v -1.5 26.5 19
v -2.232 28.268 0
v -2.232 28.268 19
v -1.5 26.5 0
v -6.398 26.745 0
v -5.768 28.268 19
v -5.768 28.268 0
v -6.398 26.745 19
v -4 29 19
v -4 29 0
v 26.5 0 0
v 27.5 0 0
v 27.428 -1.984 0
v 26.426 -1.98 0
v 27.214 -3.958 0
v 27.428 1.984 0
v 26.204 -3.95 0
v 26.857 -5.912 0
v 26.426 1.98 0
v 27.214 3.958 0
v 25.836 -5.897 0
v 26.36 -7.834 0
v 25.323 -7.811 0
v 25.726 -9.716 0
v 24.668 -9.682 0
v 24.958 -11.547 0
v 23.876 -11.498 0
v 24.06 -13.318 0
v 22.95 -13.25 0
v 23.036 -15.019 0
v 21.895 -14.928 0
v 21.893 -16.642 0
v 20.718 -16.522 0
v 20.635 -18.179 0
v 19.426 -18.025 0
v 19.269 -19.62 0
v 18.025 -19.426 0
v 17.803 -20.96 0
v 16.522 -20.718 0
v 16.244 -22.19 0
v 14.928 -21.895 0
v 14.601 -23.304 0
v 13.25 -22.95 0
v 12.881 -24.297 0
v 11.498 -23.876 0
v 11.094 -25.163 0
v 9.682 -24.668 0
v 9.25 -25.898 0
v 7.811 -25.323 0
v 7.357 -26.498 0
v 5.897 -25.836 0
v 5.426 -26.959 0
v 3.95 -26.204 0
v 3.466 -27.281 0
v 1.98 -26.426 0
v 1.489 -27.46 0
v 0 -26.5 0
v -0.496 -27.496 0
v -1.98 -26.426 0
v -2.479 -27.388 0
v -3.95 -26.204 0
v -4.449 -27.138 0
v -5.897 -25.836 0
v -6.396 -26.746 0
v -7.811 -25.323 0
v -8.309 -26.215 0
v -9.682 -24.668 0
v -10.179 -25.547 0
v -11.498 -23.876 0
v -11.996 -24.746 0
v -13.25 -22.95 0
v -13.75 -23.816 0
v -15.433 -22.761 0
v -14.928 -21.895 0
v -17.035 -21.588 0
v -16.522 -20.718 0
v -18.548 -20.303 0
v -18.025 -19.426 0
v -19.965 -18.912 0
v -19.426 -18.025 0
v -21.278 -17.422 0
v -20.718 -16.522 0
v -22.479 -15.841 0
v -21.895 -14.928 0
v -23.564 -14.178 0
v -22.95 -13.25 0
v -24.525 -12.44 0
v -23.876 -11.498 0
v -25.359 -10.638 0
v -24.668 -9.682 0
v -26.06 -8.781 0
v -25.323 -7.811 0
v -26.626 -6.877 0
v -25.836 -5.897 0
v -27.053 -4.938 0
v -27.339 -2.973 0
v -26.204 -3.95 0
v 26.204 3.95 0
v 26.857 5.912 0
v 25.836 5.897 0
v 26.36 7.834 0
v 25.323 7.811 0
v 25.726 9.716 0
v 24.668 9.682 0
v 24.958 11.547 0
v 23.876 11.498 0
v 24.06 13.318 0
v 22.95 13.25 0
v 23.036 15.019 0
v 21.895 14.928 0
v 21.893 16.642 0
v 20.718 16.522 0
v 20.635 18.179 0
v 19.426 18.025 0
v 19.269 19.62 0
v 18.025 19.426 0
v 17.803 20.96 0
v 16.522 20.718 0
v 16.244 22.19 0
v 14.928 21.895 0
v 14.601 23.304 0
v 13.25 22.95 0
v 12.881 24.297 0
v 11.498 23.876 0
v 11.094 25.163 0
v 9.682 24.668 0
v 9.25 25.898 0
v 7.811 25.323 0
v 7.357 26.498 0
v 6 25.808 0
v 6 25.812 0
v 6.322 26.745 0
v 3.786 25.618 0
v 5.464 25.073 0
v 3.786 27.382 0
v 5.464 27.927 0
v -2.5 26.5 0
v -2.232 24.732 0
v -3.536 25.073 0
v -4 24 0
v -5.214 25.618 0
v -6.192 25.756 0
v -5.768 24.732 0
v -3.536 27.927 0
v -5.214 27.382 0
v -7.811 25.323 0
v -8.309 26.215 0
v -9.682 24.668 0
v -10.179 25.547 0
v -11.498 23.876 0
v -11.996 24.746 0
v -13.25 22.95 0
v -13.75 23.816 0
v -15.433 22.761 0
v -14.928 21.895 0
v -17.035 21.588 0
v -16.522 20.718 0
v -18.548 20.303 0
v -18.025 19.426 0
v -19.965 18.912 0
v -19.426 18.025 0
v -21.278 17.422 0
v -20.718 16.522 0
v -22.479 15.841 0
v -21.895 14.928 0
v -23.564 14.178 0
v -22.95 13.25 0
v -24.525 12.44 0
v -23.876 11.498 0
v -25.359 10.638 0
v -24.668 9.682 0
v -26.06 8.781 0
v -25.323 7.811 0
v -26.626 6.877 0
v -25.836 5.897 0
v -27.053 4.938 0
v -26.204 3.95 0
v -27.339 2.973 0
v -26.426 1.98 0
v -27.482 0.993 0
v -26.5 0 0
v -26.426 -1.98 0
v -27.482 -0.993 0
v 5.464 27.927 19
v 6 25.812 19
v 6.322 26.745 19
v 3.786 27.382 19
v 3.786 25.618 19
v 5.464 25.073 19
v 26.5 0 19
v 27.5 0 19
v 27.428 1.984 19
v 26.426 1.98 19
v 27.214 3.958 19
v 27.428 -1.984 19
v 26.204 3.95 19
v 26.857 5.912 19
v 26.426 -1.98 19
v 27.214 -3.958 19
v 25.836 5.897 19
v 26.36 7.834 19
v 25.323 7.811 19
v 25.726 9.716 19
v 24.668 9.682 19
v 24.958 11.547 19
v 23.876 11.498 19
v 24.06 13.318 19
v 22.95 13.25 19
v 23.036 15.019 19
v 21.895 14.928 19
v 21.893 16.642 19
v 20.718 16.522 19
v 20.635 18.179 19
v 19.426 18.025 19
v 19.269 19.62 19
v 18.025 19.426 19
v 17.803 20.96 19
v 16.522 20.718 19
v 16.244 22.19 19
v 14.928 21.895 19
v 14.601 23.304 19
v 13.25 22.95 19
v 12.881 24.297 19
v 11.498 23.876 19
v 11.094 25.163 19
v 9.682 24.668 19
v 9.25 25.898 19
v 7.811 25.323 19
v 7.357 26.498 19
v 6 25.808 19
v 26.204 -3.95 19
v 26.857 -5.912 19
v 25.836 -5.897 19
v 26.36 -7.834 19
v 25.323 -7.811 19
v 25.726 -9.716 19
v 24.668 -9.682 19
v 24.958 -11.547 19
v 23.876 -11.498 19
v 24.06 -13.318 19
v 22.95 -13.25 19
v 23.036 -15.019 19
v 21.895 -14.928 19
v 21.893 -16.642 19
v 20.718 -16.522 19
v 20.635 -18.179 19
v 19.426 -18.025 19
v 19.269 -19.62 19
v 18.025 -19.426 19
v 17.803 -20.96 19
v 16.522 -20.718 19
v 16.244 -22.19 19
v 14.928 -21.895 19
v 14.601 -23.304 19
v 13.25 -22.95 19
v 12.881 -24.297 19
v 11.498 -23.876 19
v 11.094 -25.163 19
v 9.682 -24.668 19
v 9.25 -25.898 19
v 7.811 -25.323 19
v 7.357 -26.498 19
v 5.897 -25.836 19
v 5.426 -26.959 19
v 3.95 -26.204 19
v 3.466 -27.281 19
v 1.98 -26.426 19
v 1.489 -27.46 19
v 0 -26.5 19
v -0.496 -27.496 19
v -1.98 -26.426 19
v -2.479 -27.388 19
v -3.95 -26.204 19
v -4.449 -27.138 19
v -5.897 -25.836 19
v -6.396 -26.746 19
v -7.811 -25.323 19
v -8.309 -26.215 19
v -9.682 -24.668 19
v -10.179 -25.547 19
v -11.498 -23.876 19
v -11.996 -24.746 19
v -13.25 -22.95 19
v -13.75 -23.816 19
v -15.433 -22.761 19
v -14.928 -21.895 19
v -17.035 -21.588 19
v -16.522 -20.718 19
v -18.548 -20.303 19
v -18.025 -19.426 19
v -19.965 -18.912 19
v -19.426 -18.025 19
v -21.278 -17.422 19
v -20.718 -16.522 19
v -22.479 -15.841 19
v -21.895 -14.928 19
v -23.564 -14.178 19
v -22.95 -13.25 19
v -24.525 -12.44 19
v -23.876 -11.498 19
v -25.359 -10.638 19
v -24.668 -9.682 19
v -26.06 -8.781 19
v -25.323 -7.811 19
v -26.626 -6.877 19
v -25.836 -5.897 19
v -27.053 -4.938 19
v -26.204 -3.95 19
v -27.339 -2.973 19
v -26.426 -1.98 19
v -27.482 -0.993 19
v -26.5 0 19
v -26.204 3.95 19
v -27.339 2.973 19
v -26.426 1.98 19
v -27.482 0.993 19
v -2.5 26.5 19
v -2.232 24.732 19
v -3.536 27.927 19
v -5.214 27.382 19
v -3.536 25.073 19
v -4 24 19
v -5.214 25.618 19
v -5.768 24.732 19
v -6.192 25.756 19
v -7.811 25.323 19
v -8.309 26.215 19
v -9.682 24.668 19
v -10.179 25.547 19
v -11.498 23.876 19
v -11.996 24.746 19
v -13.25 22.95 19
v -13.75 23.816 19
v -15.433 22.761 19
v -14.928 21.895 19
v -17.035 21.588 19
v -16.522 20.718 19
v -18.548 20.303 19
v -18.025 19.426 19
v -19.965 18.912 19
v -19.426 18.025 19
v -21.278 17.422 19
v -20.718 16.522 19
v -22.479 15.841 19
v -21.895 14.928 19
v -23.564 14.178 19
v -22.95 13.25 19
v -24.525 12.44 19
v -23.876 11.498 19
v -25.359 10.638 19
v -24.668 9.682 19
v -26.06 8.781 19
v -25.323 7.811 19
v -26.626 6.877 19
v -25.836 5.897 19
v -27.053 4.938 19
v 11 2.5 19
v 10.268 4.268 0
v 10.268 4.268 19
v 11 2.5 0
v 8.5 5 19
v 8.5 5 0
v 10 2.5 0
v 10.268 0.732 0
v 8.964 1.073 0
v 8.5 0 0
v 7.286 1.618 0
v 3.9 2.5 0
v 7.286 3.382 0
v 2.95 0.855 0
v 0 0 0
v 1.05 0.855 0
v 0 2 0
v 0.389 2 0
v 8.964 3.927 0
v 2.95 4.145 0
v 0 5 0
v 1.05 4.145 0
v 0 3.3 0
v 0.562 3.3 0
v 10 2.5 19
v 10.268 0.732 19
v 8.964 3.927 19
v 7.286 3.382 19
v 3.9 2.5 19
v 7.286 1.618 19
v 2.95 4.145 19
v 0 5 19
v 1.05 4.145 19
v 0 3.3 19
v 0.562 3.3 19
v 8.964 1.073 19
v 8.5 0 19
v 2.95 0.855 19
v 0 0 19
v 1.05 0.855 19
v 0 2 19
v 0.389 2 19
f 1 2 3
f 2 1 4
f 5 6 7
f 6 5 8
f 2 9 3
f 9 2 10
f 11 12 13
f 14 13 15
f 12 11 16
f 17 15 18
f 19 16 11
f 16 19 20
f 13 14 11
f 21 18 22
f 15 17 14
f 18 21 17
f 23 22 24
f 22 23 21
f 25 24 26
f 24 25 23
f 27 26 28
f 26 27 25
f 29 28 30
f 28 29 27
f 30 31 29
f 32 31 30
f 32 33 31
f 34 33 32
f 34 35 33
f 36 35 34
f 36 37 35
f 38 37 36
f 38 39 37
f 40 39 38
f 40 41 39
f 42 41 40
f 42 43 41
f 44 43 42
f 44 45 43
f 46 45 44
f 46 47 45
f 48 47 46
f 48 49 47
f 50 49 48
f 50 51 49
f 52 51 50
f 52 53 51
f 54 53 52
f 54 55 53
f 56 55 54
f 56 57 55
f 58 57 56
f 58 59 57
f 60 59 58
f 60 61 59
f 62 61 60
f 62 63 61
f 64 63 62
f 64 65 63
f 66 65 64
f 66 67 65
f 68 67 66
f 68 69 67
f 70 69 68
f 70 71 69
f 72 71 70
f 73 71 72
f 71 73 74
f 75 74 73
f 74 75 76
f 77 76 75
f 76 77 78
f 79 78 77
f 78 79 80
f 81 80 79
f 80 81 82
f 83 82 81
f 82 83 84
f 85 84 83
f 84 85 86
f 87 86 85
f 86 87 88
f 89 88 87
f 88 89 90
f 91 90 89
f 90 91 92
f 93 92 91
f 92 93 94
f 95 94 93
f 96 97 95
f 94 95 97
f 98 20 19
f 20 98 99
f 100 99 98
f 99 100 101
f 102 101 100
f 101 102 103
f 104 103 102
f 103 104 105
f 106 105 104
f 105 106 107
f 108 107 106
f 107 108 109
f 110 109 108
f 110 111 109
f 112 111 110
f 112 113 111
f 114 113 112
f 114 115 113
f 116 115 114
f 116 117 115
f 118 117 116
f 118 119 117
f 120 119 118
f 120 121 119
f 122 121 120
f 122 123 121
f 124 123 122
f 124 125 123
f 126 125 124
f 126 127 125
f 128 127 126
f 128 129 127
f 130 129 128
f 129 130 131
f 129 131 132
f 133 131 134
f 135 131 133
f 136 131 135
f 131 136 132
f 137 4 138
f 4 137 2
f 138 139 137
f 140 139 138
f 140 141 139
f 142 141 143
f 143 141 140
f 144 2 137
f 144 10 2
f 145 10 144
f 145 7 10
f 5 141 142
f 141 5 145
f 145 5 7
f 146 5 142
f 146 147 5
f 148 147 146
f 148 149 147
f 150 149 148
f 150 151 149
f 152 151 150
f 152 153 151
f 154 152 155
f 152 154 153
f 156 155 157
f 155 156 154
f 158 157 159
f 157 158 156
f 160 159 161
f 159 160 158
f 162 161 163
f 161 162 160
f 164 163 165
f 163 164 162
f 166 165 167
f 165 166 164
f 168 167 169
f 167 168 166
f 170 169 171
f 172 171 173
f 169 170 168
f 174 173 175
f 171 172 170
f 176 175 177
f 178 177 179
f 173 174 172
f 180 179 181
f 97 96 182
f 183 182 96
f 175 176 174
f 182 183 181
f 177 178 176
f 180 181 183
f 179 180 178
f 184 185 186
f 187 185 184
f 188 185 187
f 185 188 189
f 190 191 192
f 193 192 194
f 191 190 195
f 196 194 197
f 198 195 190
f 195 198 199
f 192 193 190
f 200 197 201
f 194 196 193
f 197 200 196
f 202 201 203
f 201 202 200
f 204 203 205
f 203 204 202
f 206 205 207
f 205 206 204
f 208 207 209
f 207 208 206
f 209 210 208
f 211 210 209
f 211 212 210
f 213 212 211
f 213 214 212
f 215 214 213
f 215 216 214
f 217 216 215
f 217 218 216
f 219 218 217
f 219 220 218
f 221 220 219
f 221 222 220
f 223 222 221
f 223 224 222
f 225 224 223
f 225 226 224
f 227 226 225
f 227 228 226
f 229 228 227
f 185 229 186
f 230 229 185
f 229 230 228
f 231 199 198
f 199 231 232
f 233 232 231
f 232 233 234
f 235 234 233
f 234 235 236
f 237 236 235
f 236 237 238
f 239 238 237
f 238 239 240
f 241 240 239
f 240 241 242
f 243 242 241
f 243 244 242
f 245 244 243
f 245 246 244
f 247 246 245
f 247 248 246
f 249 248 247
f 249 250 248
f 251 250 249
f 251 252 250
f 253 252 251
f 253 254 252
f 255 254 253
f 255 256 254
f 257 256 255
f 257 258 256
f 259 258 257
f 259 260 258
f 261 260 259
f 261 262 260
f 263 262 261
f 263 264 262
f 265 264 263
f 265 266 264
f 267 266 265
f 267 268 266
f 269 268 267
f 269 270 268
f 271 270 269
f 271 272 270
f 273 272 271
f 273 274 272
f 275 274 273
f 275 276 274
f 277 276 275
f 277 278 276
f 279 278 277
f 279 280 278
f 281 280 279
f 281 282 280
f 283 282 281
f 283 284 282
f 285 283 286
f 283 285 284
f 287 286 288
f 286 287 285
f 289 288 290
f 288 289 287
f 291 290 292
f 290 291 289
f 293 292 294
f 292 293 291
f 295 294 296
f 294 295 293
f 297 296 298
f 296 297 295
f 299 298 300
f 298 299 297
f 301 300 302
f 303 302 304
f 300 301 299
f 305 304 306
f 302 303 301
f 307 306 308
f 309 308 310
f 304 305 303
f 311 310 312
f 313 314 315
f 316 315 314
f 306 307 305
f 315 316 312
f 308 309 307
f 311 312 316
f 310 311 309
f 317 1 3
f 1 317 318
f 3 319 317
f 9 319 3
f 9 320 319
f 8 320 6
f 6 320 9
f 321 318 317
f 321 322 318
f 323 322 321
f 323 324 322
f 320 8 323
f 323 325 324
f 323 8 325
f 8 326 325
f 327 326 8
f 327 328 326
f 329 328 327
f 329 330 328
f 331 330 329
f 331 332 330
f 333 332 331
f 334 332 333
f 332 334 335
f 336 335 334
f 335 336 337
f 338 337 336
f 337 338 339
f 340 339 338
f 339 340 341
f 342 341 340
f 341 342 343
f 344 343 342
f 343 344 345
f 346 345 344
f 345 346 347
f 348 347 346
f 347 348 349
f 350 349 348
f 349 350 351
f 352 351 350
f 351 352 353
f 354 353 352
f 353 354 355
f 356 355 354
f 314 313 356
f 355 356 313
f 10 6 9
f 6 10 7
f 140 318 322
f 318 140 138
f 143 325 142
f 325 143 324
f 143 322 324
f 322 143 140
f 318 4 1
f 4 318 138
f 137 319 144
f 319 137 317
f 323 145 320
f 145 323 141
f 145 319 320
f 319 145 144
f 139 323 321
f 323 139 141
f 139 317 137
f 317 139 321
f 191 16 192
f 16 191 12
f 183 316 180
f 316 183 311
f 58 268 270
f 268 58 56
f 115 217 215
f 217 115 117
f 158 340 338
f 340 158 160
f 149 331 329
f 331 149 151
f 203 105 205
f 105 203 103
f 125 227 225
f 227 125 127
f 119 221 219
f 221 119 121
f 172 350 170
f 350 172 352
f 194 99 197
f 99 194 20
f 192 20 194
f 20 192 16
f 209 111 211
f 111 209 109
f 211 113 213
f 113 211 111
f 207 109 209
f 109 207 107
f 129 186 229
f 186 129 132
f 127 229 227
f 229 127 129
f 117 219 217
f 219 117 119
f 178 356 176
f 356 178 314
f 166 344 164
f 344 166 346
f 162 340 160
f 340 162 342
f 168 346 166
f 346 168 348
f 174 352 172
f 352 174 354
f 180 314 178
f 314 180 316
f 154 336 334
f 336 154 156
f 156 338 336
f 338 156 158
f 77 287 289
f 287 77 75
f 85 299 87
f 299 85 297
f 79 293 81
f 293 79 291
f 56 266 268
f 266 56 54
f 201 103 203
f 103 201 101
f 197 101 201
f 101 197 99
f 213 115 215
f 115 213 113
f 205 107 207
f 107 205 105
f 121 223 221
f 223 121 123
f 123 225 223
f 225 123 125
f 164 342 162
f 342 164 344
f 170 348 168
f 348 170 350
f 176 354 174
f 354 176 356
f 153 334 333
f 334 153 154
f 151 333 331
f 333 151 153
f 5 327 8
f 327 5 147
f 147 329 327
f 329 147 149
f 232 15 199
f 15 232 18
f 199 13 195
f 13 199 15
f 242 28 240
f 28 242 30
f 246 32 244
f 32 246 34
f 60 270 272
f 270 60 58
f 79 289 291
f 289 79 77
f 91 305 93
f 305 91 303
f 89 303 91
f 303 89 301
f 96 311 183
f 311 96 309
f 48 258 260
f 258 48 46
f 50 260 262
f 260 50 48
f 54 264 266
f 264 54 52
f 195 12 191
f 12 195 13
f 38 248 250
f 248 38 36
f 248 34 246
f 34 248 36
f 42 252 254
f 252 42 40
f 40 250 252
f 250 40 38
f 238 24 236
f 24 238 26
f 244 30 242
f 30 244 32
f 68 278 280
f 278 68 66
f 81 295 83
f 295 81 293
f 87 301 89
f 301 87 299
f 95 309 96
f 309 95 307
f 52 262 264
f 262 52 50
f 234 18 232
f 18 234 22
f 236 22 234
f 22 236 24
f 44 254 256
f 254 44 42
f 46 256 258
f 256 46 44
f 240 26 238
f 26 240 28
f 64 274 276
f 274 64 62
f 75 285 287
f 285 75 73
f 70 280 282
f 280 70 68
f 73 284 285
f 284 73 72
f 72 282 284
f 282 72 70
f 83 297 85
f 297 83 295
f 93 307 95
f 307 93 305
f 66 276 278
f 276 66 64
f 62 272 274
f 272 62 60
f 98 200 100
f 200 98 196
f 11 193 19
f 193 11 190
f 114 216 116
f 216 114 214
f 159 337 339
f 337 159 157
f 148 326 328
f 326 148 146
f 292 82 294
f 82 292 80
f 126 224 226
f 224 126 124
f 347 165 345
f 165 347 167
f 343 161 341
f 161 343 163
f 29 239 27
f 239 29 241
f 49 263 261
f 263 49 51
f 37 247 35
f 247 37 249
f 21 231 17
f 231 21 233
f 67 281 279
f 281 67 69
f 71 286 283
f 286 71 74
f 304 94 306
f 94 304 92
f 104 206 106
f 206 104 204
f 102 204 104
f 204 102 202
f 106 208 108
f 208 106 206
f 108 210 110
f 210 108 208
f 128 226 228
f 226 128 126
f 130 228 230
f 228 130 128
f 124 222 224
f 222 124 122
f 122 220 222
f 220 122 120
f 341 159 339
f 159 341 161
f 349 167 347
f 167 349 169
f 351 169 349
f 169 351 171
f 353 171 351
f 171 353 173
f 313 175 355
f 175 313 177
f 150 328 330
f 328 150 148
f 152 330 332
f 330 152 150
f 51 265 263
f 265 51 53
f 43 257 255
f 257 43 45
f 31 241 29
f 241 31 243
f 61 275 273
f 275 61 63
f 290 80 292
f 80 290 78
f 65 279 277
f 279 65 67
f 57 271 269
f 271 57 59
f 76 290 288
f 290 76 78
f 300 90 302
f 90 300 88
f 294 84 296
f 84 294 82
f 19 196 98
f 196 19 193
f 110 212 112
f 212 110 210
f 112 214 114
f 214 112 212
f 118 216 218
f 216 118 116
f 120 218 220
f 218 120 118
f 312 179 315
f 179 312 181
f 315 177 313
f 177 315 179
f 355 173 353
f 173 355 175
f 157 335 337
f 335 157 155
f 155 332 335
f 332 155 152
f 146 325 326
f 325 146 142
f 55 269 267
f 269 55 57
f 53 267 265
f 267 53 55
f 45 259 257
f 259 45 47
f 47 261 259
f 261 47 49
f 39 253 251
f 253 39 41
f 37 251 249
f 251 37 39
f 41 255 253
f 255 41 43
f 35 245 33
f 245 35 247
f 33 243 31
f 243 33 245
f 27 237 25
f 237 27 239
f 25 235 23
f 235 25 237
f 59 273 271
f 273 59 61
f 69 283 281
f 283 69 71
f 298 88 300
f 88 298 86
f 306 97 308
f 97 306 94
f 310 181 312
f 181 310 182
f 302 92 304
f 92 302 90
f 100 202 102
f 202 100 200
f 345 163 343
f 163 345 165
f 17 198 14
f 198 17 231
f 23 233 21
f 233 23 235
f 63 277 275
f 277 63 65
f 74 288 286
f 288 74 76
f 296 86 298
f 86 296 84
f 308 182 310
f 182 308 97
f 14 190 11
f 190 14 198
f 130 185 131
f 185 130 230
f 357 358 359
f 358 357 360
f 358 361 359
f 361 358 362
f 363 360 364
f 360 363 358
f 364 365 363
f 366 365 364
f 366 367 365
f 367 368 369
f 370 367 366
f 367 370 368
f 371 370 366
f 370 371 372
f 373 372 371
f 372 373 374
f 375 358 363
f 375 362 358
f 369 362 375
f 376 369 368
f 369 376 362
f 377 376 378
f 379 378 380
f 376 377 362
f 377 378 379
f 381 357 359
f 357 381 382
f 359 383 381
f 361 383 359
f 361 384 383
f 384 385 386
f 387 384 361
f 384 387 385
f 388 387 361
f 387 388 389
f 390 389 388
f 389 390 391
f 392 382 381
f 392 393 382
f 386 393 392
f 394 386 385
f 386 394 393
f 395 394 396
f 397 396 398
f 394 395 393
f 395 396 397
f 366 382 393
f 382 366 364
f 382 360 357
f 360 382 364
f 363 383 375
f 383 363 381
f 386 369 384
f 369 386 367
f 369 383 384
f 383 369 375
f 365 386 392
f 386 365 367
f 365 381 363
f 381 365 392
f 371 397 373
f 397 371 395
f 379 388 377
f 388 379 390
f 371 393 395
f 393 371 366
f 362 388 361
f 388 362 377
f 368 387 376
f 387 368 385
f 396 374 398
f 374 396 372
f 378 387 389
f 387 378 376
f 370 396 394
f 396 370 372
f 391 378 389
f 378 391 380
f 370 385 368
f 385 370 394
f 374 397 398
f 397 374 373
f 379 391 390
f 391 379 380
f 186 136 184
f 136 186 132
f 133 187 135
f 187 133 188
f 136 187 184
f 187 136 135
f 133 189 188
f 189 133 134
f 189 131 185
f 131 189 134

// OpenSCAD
/*
 * Watch band (C) by Tobias Wilken
 */

diameter = 55;
height = 19;

difference() {
    cylinder(height, r=diameter/2, $fa=1);
    cylinder(height, r=diameter/2 -1, $fa=1);
    translate([-6,0,0]) cube([12, diameter,height]);
}

translate([-4,diameter/2-1,0])
difference() {
    cylinder(height,  r=2.5);
    cylinder(height, r=1.5);
}


translate([8.5,2.5,0])
difference() {
    cylinder(height,  r=2.5, $fa=1);
    cylinder(height, r=1.5, $fa=1);
}
translate([5, diameter/2 - 1,0]) cylinder(height,  r=1.5);

difference() {
    cube([8.5, 5, height]);
    translate([2, 2.5, 0]) cylinder(height,  r=1.9, $fa=1);
    translate([0, 2, 0]) cube([1, 1.3, height]);
    translate([8.5,2.5,0]) cylinder(height, r=1.5, $fa=1);
}
